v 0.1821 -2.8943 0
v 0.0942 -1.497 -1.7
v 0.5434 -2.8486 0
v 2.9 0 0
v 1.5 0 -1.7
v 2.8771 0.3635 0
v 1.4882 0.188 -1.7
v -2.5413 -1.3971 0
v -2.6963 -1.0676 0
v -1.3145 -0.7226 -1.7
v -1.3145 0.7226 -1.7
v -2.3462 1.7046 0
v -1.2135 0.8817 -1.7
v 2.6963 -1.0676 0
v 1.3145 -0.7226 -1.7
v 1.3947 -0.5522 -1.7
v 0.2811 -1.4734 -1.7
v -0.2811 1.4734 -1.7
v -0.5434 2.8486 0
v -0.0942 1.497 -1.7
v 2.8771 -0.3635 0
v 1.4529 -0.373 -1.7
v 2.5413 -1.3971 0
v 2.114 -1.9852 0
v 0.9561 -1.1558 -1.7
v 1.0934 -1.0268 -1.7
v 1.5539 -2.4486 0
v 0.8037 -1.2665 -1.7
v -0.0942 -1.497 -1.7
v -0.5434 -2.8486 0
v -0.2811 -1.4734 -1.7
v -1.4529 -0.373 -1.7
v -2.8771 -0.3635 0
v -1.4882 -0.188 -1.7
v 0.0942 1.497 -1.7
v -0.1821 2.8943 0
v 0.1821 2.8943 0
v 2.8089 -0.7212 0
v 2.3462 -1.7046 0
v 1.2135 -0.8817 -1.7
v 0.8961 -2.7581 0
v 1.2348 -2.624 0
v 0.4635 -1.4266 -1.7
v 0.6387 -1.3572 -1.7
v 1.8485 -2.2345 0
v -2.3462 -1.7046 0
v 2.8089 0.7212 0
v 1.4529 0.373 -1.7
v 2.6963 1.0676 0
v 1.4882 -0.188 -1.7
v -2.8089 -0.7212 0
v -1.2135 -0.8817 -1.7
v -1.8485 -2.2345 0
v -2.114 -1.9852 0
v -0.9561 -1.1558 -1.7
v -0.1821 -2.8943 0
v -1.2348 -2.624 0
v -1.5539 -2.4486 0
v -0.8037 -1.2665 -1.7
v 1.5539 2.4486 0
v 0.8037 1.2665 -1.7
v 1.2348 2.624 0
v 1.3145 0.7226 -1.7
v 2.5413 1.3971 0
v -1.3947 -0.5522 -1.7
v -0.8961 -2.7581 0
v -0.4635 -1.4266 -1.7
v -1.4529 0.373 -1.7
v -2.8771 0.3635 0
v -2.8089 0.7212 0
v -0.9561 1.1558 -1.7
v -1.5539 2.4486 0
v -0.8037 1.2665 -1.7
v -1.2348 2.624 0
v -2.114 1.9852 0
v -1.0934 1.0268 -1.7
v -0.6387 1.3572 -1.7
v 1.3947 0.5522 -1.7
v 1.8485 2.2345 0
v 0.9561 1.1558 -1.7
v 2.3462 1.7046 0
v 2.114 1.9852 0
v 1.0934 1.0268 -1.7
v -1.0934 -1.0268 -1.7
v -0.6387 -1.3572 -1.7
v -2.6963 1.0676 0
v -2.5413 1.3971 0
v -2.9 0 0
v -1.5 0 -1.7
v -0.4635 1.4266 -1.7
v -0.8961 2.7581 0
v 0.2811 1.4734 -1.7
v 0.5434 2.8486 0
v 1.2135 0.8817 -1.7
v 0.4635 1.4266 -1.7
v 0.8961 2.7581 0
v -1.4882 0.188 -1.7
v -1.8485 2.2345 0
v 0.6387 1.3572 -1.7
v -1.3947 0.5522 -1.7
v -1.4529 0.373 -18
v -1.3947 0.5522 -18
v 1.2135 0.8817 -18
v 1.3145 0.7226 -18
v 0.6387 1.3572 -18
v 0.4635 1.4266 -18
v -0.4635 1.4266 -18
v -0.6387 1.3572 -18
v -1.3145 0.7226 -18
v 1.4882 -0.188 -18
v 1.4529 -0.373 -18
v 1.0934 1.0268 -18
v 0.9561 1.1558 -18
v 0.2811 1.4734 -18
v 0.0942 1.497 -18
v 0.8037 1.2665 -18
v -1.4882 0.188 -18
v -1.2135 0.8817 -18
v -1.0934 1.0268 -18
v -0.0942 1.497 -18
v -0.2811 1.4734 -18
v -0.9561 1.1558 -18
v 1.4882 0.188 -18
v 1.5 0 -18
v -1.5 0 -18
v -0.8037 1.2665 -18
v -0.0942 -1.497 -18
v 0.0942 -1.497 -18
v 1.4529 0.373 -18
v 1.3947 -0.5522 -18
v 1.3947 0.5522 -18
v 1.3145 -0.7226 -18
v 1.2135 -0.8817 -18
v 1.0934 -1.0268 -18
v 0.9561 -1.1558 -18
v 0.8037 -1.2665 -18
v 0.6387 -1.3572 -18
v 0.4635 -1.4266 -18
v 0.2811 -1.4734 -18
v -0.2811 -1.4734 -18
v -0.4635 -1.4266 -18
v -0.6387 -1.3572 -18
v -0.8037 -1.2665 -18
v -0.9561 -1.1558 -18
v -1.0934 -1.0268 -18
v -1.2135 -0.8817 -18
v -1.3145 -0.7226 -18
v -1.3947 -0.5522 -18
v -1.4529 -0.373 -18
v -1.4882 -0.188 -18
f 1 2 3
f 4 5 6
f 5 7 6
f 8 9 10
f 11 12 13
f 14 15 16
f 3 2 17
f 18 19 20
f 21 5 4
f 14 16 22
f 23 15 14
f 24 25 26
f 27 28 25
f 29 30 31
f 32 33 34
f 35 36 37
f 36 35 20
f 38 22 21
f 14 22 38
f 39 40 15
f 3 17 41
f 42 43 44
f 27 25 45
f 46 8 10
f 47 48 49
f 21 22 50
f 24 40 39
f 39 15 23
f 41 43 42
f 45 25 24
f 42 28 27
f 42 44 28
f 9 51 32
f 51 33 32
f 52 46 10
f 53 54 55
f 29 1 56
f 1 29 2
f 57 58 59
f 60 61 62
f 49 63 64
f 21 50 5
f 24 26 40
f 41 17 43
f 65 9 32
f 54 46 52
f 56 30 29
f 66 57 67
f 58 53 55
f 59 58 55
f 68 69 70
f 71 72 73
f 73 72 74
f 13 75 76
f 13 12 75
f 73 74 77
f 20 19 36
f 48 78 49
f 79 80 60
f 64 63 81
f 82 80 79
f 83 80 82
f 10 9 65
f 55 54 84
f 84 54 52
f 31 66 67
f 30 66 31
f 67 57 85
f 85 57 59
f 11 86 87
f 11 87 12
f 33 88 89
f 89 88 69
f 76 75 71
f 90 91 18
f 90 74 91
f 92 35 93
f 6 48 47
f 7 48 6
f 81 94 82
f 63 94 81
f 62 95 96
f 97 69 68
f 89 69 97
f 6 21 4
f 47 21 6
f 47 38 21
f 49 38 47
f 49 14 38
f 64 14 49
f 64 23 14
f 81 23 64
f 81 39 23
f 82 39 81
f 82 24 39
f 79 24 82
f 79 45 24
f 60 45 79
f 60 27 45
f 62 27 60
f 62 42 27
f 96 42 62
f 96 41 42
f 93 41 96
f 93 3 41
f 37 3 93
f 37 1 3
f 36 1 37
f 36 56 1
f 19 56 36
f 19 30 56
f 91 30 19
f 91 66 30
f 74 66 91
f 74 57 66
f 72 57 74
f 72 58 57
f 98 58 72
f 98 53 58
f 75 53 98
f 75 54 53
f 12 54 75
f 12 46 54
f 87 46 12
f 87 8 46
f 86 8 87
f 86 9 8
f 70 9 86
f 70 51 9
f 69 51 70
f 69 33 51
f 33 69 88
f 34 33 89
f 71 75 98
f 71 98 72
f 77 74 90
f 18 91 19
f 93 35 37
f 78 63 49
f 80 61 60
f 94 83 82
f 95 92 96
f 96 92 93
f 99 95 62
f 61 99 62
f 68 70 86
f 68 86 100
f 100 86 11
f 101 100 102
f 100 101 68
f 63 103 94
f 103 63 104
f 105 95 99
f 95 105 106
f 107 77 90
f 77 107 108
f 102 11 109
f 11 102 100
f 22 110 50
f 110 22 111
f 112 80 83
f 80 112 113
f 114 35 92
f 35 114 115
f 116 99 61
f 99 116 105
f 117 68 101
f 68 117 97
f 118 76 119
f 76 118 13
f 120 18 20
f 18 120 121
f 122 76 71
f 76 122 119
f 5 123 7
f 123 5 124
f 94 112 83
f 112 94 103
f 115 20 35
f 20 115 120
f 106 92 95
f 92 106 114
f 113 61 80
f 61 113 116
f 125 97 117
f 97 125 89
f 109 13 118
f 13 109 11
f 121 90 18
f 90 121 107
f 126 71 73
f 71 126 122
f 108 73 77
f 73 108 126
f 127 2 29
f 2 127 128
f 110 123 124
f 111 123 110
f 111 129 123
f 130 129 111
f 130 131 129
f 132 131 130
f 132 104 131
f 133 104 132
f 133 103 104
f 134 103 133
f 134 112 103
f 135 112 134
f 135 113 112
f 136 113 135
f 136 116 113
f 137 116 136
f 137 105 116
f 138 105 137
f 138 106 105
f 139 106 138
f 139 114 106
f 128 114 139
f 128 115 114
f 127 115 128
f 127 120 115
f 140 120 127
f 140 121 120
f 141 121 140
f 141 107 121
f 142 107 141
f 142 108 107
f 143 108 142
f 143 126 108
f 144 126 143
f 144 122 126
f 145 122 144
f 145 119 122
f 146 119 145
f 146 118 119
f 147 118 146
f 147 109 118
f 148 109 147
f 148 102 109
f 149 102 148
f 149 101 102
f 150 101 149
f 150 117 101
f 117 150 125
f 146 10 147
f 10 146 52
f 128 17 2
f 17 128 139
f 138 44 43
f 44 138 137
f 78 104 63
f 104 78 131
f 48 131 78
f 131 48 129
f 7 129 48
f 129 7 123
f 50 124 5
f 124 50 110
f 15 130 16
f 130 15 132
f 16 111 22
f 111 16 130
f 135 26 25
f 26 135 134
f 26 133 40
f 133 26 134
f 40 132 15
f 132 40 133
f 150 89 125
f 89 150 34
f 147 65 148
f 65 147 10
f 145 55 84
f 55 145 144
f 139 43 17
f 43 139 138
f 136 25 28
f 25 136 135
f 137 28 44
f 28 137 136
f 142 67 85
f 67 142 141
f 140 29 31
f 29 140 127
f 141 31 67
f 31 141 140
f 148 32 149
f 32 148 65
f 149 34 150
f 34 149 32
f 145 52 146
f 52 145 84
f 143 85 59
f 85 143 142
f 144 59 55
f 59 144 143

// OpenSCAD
// Generated by SolidPython 1.1.3 on 2023-03-13 21:06:12
$fn = 50;


difference() {
	union() {
		translate(v = [0, 0, -1.7000000000]) {
			rotate(a = [0, 0, 0]) {
				cylinder(h = 1.7000000000, r1 = 1.5000000000, r2 = 2.9000000000);
			}
		}
		translate(v = [0, 0, -18]) {
			rotate(a = [0, 0, 0]) {
				cylinder(h = 18, r = 1.5000000000);
			}
		}
	}
	union();
}
/***********************************************
*********      SolidPython code:      **********
************************************************
 
from solid import *
import os
import subprocess

import oomB

import opsc_library_gen

mode = "laser"
#mode = "3d_print"

defined_objects = {}

radius_dict = {}
countersunk_dict = {}


def set_mode(m):
    global mode
    mode = m
    radius_dict['M6'] = 6.5/2
    radius_dict['M3'] = 3.3/2
    if mode == "laser":
        radius_dict['M6'] = 6/2
        radius_dict['M3'] = 3/2

    countersunk_dict['M3'] = {}
    countersunk_dict['M3']['little_rad'] = radius_dict['M3']
    countersunk_dict['M3']['big_rad'] = (5.5+0.6)/2
    if mode == "laser":
        countersunk_dict['M3']['big_rad'] = (4.75+0.6)/2
        countersunk_dict['M3']['little_rad'] = (4.75+0.6)/2

    countersunk_dict['M3']['height'] = 1.7


def opsc_make_object(filename, objects, save_type="none",resolution=50, layers = 1, tilediff = 200, mode="laser", overwrite=True):
    if overwrite or not os.path.exists(filename):
        set_mode(mode)
        save_type = save_type.lower()
        os.makedirs(os.path.dirname(filename), exist_ok=True)
        final_object = opsc_get_object(objects, mode = mode)
        # Save the final object to the specified filename    
        scad_render_to_file(final_object, filename, file_header='$fn = %s;' % resolution, include_orig_code=True)
        if save_type == "all":
            saveToAll(filename)
        elif save_type == "dxf":
            saveToDxf(filename)
        if mode == "laser":
            filename_laser = filename.replace(".scad","-flat.scad")
            scad_render_to_file(getLaser(final_object, layers=layers, tilediff=tilediff), filename_laser, file_header='$fn = %s;' % resolution, include_orig_code=True)
            if save_type == "all":
                saveToAll(filename_laser)
            elif save_type == "dxf":
                saveToDxf(filename_laser)


def opsc_get_object(objects, mode = "laser"):
    # Create the solidpython objects only include the positive objects and if they don't have inclusion or their inclusion is either all or mode
    # Initialize an empty list to store the results
    positive_objects = []

    # Iterate over the "objects" list
    for obj in objects:
        # Check if the current object has a "type" key with a value of "positive"
        if obj['type'] == 'positive':
            # Check if the current object has an "inclusion" key and its value matches "mode",
            # or if the current object does not have an "inclusion" key at all
            if not 'inclusion' in obj or obj['inclusion'] == "all" or obj['inclusion'] == mode:
                # Call the "get_opsc_item" function with the current object as an argument
                opsc_item = get_opsc_item(obj)
                # Add the result to the "positive_objects" list
                positive_objects.append(opsc_item)
# Initialize an empty list to store the results
    negative_objects = []

    # Iterate over the "objects" list
    for obj in objects:
        # Check if the current object has a "type" key with a value of "negative"
        if obj['type'] == 'negative':
            # Check if the current object has an "inclusion" key and its value matches "mode",
            # or if the current object does not have an "inclusion" key at all
            if not 'inclusion' in obj or obj['inclusion'] == "all" or obj['inclusion'] == mode:
                # Call the "get_opsc_item" function with the current object as an argument
                opsc_item = get_opsc_item(obj)
                # Add the result to the "negative_objects" list
                negative_objects.append(opsc_item)
    
    #positive_objects = [get_opsc_item(obj) for obj in objects if obj['type'] == 'positive']
    #negative_objects = [get_opsc_item(obj) for obj in objects if obj['type'] == 'negative']
    # Union the positive objects
    positive_object = union()(*positive_objects)
    # Union the negative objects
    negative_object = union()(*negative_objects)
    # Create the final object by subtracting the negative objects from the positive objects
    return difference()(positive_object, negative_object)

def get_opsc_item(params):
    # A dictionary to map radius string values to numerical values
    #radius_dict = {'small': 5, 'medium': 10, 'large': 15}
    # An array of function names for basic shapes
    basic_shapes = ['cube', 'sphere', 'cylinder']
    
    # An array of function names for other shapes
    other_shapes = ['hole', 'slot', 'rounded_rectangle', 'countersunk', 'polyg']
    


    # Convert radius to r if present, and remove radius from the params dictionary
    if 'radius' in params:
        if isinstance(params['radius'], str):
            # Use the radius_dict to map the radius string value to a numerical value
            params['r'] = radius_dict[params['radius']]
        else:
            params['r'] = params['radius']
        del params['radius']
    

    # Check if the object type is a basic shape
    if params['shape'] in basic_shapes:
        # Remove shape and unexpected dictionary values
        allowed_keys = {'size', 'r', 'r1', 'r2', 'd', 'h', 'rw', 'rh', 'dw', 'dh'}
        shape_params = {k: v for k, v in params.items() if k in allowed_keys}

        #params['m'] = "#"
        ###split for adding modifier
        try:
            m = params['m']
            func = globals()[params['shape']]
            return_value = get_opsc_transform(params,func(**shape_params))
            return_value = (return_value).set_modifier(m)
            return return_value
        except KeyError as e:
            return get_opsc_transform(params,globals()[params['shape']](**shape_params))
        
    elif params['shape'] == 'polygon':
        # Remove shape and unexpected dictionary values
        h  = params['height']
        allowed_keys = {'points'}
        shape_params = {k: v for k, v in params.items() if k in allowed_keys}

        # Call the corresponding function for the shape parameter, using ** notation to pass the shape_params dictionary as keyword arguments
        params["rot"] = [0,0,0]        
        try:
            m = params['m']
            func = globals()[params['shape']]
            return_value = get_opsc_transform(params,linear_extrude(h)(globals()[params['shape']](**shape_params)))
            return_value = (return_value).set_modifier(m)
            return return_value
        except KeyError as e:
            return_value = get_opsc_transform(params,linear_extrude(h)(globals()[params['shape']](**shape_params)))
            return_value = (return_value)
            return return_value


    # If the object type is not a basic shape, check if it's a defined object or one of the other shapes
    elif params['shape'] in other_shapes:
        # Call the corresponding function for the shape parameter, passing the params dictionary as an argument
        p2 = copy.deepcopy(params)
        p2["pos"] = [0,0,0]
        return get_opsc_transform(params,globals()[params['shape']](p2))
    
    # If the object is not a basic shape or a defined object, try to import it from a .scad file
    else:
        obj = defined_objects[params['shape']]
        return get_opsc_transform(params,obj)

def get_opsc_transform(params, solid_obj):
    # Rotate the object based on the 'rot' field in the params dictionary, or the 'rotX', 'rotY', and 'rotZ' fields if 'rot' is not present
    rot = params.get('rot', [])
    if rot:
        rotX, rotY, rotZ = rot
    else:
        rotX = params.get('rotX', 0)
        rotY = params.get('rotY', 0)
        rotZ = params.get('rotZ', 0)
    solid_obj = rotate([rotX, rotY, rotZ])(solid_obj)

    # Translate the object based on the 'pos' field in the params dictionary, or the 'x', 'y', and 'z' fields if 'pos' is not present
    pos = params.get('pos', [])
    if pos:
        x, y, z = pos
    else:
        x = params.get('x', 0)
        y = params.get('y', 0)
        z = params.get('z', 0)
    solid_obj = translate([x, y, z])(solid_obj)
    return solid_obj


import random

def opsc_easy_array(type, shape, repeats, pos_start, shift_arr, **kwargs):
    for i in range(0,3):
        repeats.append(1)
        pos_start.append(0)
        shift_arr.append(0)
    return_objects = []

    for x in range(0,repeats[0]):
        for y in range(0,repeats[1]):
            for z in range(0,repeats[2]):
                return_objects.append(opsc_easy(type, shape, pos=[pos_start[0]+x*shift_arr[0],pos_start[1]+y*shift_arr[1],pos_start[2]+z*shift_arr[2]], **kwargs))
    return return_objects                



def opsc_easy(type, shape, **kwargs):
    obj = {
        'type': type,
        'shape': shape
    }
    for param in ['size', 'r', 'r1', 'r2', 'd', 'h', 'rw', 'rh', 'dw', 'dh', 'pos', 'x', 'y', 'z', 'rot', 'rotX', 'rotY', 'rotZ', "w", "inclusion", 'sides', 'height', "m"]:
        if param in kwargs:
            obj[param] = kwargs[param]
    return obj

def hole(params):
    p2 = copy.deepcopy(params)  
    # Check if the radius is a string and replace it with the corresponding value from the dictionary
    if isinstance(p2['r'], str):
        p2['r'] = radius_dict[p2['r']]
    
    # Set the height to 100 if not specified
    if 'h' not in p2:
        p2['h'] = 100
        p2["pos"] = [0,0,-50]
    p2["center"] = True
    # Create the cylinder object
    p2["shape"] = "cylinder"
    p2["type"] = "positive"

    return get_opsc_item(p2)

import copy

def countersunk(params):
    p2 = copy.deepcopy(params)
    counter_rad = p2['r']
    p2['r'] = radius_dict[p2['r']]
    hp = copy.deepcopy(p2)
    hp["type"] = "positive"
    hp["shape"] = "hole"
    del hp["rot"]
    hol = get_opsc_item(hp)
    
    cp = copy.deepcopy(p2)
    cp["h"] = countersunk_dict[counter_rad]["height"]
    cp["r2"] = countersunk_dict[counter_rad]["little_rad"]
    cp["r1"] = countersunk_dict[counter_rad]["big_rad"]
    del cp["r"]
    del cp["rot"]
    cp["type"] = "positive"
    cp["shape"] = "cylinder"
    cp["pos"] = [0,0,0]

    top = get_opsc_item(cp)
    return union()(hol,top)



def slot(params):  
    p2 = copy.deepcopy(params) 
    if isinstance(p2['r'], str):
        p2['r'] = radius_dict[p2['r']]
    p2["type"] = "positive"
    p2["shape"] = "hole"
    del p2["rot"]
    p2["pos"] = [0,0,0]
    left = copy.deepcopy(p2)
    right = copy.deepcopy(p2)
    left["pos"][0] = p2["w"] / 2 - p2["r"] 
    
    right["pos"][0] = -p2["w"] / 2 + p2["r"] 
    pass
    leftObj = get_opsc_item(left)
    rightObj = get_opsc_item(right)
    return hull()(leftObj, rightObj)

def rounded_rectangle(params):   
    p2 = copy.deepcopy(params) 
    p2["h"] = p2["size"][2]
    p2["pos"] = p2.get("pos", [0, 0, 0]) 
    p2["type"] = "positive"
    p2["shape"] = "hole"
    p2["pos"] = [0,0,0]
    
    if 'rot' in p2:
        del p2["rot"]   
    if 'r' not in p2:
        p2["r"] = 5 
    tl = copy.deepcopy(p2)
    tr = copy.deepcopy(p2)
    bl = copy.deepcopy(p2)
    br = copy.deepcopy(p2)
    tl["pos"][0] = -(p2["size"][0] - p2["r"]*2)/2
    tl["pos"][1] = (p2["size"][1] - p2["r"]*2)/2
    tr["pos"][0] = (p2["size"][0] - p2["r"]*2)/2
    tr["pos"][1] = (p2["size"][1] - p2["r"]*2)/2
    bl["pos"][0] = -(p2["size"][0] - p2["r"]*2)/2
    bl["pos"][1] = -(p2["size"][1] - p2["r"]*2)/2
    br["pos"][0] = (p2["size"][0] - p2["r"]*2)/2
    br["pos"][1] = -(p2["size"][1] - p2["r"]*2)/2
    del tl["size"]
    del tr["size"]
    del bl["size"]
    del br["size"]
    tlo = get_opsc_item(tl)
    tro = get_opsc_item(tr)
    blo = get_opsc_item(bl)
    bro = get_opsc_item(br)    
    return hull()(tlo, tro, blo, bro)



def polyg(params):
    p2 = copy.deepcopy(params) 
    p2["type"] = "positive"
    p2["shape"] = "polygon"
    p2["pos"] = [0,0,0]
    sides = p2["sides"]
    radius = p2["r"]    
    angles = [i * 360 / sides for i in range(sides)]
    points = regular_polygon(sides, radius)
    
    p2["points"] = points
    return get_opsc_item(p2)

import math

def regular_polygon(num_sides, radius):
    # Calculate the angle between each side
    angle = 2 * math.pi / num_sides

    # Calculate the points of the polygon
    points = []
    for i in range(num_sides):
        x = radius * math.cos(i * angle)
        y = radius * math.sin(i * angle)
        points.append((x, y))
    return points

def import_scad_object(filename):
    # Import the .scad file and convert it to a solidpython object
    #filename = "parts"
    obj = import_scad(filename)
    return obj.main()



import os
import solid as solidpython

# A dictionary to store the defined objects


def load_scad_objects():
    opsc_library_gen.gen_library(defined_objects)

import random

def test(num_objects):
    objects = []
    for i in range(num_objects):
        # Choose a random shape
        #shape = random.choice(['cube', 'sphere', 'cylinder', 'hole', 'slot', "rounded_rectangle"])
        shape = random.choice(["rounded_rectangle"])

        # Choose a random type
        type = random.choice(['positive', 'negative'])
        
        # Create an empty object dictionary
        obj = {'shape': shape, 'type': type}
        
        # Set shape-specific parameters
        if obj['shape'] in ['cube']:
            obj['size'] =  [random.uniform(5, 15), random.uniform(5, 15), random.uniform(5, 15)]
        if obj['shape'] in ['rounded_rectangle']:
            obj['size'] =  [random.uniform(5, 15), random.uniform(5, 15), random.uniform(5, 15)]
            obj['r'] = random.uniform(0.5, 5)
        elif obj['shape'] == 'sphere':
            obj['r'] = random.uniform(5, 15)
        elif obj['shape'] in ['cylinder', 'hole']:
            obj['r'] = random.uniform(0.5, 5)
            obj['h'] = random.uniform(5, 15)
        elif obj['shape'] == 'slot':
            obj['r'] = random.uniform(0.5, 5)
            obj['h'] = random.uniform(5, 15)
            obj['w'] = random.uniform(5, 15)
        
        # Set a random position and rotation
        obj['pos'] = [random.uniform(-20, 20), random.uniform(-20, 20), random.uniform(-20, 20)]
        obj['rot'] = [random.uniform(-180, 180), random.uniform(-180, 180), random.uniform(-180, 180)]
        
        # Add the object to the list
        objects.append(obj)
    return objects

####### old file saving
def saveToAll(fileIn):
    saveToStl(fileIn)
    saveToDxf(fileIn)
    saveToPng(fileIn)
    saveToSvg(fileIn)

def saveToDxf(fileIn, fileOut="", copy_to_laser=True):
    if fileOut == "":
        fileOut = fileIn.replace(".scad",".dxf")
    saveToFile(fileIn, fileOut)


    
def saveToPng(fileIn, fileOut="",extra="--render"):
    if fileOut == "":
        fileOut = fileIn.replace(".scad",".png")
    saveToFile(fileIn, fileOut)

def saveToStl(fileIn, fileOut=""):
    if fileOut == "":
        fileOut = fileIn.replace(".scad",".stl")
    saveToFile(fileIn, fileOut)
    
def saveToSvg(fileIn, fileOut=""):
    if fileOut == "":
        fileOut = fileIn.replace(".scad",".svg")
    saveToFile(fileIn, fileOut)

def saveToFile(fileIn, fileOut,extra=""):
    #extra = extra + " --colorscheme Tomorrow"

    launchStr = 'openscad -o "' + fileOut + '"' + extra + ' "' + fileIn + '"'
    if ".png" in fileOut:
        launchStr = launchStr + " --render"
    print("            saveToFile launch string: " + launchStr)
    subprocess.run(launchStr)
    x=0

def getLaser(final_object,start=1.5,layers=1,thickness=3,tilediff=200):
        rv= []

        for x in range(layers):
            rv.append(translate([0,x*tilediff,0])(
                    projection()(
                        intersection()(translate([-500,-500,start+x*thickness])(cube(size=[1000,1000,0.1])),
                            final_object
                        )
                    )
            )
            )
            
        return union()(rv)

set_mode("laser")
load_scad_objects() 
 
************************************************/
